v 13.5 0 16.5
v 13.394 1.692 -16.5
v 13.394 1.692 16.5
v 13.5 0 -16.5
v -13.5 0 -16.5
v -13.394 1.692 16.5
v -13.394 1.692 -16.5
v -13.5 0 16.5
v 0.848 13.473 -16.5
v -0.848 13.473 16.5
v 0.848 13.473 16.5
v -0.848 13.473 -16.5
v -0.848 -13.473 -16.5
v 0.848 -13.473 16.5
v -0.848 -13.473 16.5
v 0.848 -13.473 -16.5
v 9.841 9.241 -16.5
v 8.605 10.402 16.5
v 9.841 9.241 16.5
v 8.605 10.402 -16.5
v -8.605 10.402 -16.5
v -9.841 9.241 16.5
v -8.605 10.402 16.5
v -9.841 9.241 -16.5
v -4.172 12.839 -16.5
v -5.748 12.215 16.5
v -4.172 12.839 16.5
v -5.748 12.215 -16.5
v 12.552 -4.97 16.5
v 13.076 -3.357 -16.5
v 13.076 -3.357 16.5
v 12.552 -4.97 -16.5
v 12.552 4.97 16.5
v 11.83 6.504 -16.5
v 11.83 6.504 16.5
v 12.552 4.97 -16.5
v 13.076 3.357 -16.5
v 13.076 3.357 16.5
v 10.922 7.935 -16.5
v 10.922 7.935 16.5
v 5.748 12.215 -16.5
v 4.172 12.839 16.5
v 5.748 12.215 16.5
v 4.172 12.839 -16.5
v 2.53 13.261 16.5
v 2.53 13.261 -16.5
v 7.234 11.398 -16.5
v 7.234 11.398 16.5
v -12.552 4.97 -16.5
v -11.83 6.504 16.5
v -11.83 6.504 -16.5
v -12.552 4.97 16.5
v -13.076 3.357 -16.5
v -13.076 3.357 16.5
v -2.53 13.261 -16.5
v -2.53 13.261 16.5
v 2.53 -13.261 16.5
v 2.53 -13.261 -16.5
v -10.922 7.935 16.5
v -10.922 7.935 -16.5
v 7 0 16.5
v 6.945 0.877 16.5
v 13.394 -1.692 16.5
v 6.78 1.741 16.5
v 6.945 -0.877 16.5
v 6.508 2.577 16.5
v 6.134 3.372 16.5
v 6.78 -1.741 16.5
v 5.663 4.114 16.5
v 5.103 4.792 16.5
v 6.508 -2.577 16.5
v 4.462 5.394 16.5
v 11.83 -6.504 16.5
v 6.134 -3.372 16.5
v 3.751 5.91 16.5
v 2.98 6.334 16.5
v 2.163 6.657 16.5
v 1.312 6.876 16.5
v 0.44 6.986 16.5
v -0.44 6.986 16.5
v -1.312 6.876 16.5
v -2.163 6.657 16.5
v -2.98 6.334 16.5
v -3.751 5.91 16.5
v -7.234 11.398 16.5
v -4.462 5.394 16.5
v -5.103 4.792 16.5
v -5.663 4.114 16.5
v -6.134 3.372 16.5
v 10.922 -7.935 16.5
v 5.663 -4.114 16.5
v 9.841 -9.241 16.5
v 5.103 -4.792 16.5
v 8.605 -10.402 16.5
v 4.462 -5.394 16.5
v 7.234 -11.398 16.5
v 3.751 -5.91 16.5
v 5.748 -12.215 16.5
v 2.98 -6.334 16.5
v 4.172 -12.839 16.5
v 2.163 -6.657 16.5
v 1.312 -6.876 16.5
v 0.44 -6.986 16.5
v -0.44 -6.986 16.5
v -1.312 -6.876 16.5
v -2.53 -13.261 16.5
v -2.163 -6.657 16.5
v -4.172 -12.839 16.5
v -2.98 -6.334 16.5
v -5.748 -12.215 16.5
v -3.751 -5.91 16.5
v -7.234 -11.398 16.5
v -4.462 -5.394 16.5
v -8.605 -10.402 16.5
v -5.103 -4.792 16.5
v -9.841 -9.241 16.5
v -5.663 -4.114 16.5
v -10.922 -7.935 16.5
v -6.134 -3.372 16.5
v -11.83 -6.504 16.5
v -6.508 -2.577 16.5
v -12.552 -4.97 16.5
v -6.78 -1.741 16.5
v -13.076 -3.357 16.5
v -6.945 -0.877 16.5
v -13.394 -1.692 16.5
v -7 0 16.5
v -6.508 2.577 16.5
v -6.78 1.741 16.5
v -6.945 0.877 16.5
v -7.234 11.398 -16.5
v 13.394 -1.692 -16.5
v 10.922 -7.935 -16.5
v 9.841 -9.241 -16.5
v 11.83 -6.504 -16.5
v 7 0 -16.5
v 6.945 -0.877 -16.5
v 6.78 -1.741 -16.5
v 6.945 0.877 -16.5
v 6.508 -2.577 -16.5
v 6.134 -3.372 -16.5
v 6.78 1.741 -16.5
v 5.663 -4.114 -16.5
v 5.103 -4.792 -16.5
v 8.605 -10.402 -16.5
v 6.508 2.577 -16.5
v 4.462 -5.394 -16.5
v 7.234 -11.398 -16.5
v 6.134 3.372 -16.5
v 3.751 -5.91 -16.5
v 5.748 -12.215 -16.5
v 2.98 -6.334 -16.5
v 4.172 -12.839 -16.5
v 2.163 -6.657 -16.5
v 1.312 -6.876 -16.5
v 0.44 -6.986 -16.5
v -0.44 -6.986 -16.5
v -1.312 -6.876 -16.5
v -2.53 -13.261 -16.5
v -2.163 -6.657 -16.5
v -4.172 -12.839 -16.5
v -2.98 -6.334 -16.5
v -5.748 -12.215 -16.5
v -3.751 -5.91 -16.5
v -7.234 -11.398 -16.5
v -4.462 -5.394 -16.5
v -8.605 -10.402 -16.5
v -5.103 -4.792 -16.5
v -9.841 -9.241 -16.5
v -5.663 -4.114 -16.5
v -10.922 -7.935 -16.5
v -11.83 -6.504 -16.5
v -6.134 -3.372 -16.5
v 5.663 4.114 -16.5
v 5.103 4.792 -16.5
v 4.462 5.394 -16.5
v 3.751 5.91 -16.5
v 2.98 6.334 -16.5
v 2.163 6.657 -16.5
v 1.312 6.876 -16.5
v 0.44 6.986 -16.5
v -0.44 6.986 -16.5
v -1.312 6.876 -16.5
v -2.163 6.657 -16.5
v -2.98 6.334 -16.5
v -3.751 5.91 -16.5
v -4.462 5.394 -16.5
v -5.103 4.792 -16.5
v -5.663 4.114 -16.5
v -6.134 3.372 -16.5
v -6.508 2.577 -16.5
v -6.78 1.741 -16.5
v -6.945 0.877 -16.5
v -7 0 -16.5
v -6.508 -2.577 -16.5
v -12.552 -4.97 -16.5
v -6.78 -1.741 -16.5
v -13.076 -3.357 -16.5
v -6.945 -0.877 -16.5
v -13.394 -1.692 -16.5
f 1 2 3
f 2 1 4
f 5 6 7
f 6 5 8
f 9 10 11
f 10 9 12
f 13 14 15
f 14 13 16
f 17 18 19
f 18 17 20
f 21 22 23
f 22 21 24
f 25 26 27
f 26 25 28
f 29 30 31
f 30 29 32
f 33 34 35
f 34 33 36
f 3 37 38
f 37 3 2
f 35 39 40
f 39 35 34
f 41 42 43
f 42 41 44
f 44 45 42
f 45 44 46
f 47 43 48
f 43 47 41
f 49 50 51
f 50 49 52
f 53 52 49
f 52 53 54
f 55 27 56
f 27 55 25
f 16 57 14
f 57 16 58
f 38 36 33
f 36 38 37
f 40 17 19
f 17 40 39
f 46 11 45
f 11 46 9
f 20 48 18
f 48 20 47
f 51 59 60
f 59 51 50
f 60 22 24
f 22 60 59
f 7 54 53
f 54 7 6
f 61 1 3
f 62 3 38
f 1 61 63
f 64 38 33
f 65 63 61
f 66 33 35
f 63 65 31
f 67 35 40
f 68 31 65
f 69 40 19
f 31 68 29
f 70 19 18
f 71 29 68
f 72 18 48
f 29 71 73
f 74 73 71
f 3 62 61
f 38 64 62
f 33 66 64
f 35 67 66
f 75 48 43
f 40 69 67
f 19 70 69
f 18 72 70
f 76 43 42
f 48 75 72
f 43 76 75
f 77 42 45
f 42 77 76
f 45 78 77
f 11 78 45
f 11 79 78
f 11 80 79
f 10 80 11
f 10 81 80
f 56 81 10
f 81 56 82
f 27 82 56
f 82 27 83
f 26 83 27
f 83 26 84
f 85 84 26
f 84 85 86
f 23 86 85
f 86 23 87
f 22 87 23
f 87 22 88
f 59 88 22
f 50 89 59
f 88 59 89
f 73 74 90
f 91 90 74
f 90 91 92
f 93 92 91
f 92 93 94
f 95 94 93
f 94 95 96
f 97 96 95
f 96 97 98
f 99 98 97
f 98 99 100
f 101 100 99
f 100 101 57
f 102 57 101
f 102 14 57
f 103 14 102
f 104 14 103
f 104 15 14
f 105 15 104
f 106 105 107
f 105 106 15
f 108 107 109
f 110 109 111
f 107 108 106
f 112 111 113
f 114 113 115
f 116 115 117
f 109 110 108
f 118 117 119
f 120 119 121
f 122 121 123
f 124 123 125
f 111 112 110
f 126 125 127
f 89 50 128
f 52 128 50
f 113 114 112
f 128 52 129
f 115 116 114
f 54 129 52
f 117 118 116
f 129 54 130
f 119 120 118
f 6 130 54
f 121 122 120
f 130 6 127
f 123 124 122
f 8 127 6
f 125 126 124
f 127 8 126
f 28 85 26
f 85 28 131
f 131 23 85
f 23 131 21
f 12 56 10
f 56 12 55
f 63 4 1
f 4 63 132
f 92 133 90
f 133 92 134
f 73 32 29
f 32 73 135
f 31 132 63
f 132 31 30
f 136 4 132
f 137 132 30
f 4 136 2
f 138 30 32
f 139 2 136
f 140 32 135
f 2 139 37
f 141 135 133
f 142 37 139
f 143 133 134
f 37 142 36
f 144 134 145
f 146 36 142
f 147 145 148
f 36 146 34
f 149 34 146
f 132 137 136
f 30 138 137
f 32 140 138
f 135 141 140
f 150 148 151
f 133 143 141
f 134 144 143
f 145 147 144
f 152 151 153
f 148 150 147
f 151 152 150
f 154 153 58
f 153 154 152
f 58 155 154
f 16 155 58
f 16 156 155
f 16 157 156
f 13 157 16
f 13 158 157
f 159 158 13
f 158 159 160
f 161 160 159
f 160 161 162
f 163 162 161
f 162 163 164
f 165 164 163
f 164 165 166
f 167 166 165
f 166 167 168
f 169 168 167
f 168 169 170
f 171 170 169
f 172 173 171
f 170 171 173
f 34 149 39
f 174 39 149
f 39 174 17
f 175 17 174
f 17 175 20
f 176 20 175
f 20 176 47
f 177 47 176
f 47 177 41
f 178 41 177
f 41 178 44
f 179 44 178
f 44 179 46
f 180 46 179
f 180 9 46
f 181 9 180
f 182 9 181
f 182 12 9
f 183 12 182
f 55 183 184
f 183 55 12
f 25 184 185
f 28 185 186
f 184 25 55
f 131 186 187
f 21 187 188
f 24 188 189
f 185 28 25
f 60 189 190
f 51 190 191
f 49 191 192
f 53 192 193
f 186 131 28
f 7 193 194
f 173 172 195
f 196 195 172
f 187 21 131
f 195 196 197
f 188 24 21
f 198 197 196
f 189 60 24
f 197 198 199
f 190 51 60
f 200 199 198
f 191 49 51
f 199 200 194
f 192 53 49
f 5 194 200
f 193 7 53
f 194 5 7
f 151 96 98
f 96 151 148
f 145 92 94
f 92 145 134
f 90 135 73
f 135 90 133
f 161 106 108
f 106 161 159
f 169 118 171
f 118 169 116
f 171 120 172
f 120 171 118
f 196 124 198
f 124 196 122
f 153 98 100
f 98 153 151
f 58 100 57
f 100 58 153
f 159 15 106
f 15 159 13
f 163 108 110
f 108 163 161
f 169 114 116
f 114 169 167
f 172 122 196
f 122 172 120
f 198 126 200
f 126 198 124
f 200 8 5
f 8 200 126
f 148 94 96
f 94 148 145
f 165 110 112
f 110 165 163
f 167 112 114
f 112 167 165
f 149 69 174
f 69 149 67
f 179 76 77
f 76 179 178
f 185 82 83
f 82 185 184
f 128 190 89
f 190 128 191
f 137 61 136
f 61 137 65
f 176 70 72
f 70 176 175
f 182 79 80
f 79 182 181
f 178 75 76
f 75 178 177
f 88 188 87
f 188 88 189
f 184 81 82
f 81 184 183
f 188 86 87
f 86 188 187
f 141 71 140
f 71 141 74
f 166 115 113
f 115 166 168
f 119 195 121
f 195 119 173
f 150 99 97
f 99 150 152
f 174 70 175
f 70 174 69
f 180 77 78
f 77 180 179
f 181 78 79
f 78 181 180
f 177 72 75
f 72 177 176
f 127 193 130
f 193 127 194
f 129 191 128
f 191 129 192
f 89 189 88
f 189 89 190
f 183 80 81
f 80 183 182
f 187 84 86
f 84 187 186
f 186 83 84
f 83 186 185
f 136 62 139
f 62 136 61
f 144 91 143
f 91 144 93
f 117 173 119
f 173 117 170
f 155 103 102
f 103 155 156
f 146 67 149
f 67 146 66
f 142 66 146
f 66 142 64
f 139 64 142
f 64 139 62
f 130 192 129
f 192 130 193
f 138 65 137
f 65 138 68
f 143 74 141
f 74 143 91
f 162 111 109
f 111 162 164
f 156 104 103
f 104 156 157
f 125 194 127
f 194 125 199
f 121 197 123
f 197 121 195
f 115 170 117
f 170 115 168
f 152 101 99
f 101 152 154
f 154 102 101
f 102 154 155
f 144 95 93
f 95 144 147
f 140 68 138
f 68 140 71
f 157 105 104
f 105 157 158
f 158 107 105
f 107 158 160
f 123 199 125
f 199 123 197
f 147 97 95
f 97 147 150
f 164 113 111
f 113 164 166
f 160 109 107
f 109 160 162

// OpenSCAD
$fn = 50;


difference() {
	union() {
		translate(v = [0, 0, -16.5000000000]) {
			cylinder(h = 33, r = 13.5000000000);
		}
	}
	union() {
		translate(v = [0, 0, -100.0000000000]) {
			cylinder(h = 200, r = 7);
		}
	}
}
